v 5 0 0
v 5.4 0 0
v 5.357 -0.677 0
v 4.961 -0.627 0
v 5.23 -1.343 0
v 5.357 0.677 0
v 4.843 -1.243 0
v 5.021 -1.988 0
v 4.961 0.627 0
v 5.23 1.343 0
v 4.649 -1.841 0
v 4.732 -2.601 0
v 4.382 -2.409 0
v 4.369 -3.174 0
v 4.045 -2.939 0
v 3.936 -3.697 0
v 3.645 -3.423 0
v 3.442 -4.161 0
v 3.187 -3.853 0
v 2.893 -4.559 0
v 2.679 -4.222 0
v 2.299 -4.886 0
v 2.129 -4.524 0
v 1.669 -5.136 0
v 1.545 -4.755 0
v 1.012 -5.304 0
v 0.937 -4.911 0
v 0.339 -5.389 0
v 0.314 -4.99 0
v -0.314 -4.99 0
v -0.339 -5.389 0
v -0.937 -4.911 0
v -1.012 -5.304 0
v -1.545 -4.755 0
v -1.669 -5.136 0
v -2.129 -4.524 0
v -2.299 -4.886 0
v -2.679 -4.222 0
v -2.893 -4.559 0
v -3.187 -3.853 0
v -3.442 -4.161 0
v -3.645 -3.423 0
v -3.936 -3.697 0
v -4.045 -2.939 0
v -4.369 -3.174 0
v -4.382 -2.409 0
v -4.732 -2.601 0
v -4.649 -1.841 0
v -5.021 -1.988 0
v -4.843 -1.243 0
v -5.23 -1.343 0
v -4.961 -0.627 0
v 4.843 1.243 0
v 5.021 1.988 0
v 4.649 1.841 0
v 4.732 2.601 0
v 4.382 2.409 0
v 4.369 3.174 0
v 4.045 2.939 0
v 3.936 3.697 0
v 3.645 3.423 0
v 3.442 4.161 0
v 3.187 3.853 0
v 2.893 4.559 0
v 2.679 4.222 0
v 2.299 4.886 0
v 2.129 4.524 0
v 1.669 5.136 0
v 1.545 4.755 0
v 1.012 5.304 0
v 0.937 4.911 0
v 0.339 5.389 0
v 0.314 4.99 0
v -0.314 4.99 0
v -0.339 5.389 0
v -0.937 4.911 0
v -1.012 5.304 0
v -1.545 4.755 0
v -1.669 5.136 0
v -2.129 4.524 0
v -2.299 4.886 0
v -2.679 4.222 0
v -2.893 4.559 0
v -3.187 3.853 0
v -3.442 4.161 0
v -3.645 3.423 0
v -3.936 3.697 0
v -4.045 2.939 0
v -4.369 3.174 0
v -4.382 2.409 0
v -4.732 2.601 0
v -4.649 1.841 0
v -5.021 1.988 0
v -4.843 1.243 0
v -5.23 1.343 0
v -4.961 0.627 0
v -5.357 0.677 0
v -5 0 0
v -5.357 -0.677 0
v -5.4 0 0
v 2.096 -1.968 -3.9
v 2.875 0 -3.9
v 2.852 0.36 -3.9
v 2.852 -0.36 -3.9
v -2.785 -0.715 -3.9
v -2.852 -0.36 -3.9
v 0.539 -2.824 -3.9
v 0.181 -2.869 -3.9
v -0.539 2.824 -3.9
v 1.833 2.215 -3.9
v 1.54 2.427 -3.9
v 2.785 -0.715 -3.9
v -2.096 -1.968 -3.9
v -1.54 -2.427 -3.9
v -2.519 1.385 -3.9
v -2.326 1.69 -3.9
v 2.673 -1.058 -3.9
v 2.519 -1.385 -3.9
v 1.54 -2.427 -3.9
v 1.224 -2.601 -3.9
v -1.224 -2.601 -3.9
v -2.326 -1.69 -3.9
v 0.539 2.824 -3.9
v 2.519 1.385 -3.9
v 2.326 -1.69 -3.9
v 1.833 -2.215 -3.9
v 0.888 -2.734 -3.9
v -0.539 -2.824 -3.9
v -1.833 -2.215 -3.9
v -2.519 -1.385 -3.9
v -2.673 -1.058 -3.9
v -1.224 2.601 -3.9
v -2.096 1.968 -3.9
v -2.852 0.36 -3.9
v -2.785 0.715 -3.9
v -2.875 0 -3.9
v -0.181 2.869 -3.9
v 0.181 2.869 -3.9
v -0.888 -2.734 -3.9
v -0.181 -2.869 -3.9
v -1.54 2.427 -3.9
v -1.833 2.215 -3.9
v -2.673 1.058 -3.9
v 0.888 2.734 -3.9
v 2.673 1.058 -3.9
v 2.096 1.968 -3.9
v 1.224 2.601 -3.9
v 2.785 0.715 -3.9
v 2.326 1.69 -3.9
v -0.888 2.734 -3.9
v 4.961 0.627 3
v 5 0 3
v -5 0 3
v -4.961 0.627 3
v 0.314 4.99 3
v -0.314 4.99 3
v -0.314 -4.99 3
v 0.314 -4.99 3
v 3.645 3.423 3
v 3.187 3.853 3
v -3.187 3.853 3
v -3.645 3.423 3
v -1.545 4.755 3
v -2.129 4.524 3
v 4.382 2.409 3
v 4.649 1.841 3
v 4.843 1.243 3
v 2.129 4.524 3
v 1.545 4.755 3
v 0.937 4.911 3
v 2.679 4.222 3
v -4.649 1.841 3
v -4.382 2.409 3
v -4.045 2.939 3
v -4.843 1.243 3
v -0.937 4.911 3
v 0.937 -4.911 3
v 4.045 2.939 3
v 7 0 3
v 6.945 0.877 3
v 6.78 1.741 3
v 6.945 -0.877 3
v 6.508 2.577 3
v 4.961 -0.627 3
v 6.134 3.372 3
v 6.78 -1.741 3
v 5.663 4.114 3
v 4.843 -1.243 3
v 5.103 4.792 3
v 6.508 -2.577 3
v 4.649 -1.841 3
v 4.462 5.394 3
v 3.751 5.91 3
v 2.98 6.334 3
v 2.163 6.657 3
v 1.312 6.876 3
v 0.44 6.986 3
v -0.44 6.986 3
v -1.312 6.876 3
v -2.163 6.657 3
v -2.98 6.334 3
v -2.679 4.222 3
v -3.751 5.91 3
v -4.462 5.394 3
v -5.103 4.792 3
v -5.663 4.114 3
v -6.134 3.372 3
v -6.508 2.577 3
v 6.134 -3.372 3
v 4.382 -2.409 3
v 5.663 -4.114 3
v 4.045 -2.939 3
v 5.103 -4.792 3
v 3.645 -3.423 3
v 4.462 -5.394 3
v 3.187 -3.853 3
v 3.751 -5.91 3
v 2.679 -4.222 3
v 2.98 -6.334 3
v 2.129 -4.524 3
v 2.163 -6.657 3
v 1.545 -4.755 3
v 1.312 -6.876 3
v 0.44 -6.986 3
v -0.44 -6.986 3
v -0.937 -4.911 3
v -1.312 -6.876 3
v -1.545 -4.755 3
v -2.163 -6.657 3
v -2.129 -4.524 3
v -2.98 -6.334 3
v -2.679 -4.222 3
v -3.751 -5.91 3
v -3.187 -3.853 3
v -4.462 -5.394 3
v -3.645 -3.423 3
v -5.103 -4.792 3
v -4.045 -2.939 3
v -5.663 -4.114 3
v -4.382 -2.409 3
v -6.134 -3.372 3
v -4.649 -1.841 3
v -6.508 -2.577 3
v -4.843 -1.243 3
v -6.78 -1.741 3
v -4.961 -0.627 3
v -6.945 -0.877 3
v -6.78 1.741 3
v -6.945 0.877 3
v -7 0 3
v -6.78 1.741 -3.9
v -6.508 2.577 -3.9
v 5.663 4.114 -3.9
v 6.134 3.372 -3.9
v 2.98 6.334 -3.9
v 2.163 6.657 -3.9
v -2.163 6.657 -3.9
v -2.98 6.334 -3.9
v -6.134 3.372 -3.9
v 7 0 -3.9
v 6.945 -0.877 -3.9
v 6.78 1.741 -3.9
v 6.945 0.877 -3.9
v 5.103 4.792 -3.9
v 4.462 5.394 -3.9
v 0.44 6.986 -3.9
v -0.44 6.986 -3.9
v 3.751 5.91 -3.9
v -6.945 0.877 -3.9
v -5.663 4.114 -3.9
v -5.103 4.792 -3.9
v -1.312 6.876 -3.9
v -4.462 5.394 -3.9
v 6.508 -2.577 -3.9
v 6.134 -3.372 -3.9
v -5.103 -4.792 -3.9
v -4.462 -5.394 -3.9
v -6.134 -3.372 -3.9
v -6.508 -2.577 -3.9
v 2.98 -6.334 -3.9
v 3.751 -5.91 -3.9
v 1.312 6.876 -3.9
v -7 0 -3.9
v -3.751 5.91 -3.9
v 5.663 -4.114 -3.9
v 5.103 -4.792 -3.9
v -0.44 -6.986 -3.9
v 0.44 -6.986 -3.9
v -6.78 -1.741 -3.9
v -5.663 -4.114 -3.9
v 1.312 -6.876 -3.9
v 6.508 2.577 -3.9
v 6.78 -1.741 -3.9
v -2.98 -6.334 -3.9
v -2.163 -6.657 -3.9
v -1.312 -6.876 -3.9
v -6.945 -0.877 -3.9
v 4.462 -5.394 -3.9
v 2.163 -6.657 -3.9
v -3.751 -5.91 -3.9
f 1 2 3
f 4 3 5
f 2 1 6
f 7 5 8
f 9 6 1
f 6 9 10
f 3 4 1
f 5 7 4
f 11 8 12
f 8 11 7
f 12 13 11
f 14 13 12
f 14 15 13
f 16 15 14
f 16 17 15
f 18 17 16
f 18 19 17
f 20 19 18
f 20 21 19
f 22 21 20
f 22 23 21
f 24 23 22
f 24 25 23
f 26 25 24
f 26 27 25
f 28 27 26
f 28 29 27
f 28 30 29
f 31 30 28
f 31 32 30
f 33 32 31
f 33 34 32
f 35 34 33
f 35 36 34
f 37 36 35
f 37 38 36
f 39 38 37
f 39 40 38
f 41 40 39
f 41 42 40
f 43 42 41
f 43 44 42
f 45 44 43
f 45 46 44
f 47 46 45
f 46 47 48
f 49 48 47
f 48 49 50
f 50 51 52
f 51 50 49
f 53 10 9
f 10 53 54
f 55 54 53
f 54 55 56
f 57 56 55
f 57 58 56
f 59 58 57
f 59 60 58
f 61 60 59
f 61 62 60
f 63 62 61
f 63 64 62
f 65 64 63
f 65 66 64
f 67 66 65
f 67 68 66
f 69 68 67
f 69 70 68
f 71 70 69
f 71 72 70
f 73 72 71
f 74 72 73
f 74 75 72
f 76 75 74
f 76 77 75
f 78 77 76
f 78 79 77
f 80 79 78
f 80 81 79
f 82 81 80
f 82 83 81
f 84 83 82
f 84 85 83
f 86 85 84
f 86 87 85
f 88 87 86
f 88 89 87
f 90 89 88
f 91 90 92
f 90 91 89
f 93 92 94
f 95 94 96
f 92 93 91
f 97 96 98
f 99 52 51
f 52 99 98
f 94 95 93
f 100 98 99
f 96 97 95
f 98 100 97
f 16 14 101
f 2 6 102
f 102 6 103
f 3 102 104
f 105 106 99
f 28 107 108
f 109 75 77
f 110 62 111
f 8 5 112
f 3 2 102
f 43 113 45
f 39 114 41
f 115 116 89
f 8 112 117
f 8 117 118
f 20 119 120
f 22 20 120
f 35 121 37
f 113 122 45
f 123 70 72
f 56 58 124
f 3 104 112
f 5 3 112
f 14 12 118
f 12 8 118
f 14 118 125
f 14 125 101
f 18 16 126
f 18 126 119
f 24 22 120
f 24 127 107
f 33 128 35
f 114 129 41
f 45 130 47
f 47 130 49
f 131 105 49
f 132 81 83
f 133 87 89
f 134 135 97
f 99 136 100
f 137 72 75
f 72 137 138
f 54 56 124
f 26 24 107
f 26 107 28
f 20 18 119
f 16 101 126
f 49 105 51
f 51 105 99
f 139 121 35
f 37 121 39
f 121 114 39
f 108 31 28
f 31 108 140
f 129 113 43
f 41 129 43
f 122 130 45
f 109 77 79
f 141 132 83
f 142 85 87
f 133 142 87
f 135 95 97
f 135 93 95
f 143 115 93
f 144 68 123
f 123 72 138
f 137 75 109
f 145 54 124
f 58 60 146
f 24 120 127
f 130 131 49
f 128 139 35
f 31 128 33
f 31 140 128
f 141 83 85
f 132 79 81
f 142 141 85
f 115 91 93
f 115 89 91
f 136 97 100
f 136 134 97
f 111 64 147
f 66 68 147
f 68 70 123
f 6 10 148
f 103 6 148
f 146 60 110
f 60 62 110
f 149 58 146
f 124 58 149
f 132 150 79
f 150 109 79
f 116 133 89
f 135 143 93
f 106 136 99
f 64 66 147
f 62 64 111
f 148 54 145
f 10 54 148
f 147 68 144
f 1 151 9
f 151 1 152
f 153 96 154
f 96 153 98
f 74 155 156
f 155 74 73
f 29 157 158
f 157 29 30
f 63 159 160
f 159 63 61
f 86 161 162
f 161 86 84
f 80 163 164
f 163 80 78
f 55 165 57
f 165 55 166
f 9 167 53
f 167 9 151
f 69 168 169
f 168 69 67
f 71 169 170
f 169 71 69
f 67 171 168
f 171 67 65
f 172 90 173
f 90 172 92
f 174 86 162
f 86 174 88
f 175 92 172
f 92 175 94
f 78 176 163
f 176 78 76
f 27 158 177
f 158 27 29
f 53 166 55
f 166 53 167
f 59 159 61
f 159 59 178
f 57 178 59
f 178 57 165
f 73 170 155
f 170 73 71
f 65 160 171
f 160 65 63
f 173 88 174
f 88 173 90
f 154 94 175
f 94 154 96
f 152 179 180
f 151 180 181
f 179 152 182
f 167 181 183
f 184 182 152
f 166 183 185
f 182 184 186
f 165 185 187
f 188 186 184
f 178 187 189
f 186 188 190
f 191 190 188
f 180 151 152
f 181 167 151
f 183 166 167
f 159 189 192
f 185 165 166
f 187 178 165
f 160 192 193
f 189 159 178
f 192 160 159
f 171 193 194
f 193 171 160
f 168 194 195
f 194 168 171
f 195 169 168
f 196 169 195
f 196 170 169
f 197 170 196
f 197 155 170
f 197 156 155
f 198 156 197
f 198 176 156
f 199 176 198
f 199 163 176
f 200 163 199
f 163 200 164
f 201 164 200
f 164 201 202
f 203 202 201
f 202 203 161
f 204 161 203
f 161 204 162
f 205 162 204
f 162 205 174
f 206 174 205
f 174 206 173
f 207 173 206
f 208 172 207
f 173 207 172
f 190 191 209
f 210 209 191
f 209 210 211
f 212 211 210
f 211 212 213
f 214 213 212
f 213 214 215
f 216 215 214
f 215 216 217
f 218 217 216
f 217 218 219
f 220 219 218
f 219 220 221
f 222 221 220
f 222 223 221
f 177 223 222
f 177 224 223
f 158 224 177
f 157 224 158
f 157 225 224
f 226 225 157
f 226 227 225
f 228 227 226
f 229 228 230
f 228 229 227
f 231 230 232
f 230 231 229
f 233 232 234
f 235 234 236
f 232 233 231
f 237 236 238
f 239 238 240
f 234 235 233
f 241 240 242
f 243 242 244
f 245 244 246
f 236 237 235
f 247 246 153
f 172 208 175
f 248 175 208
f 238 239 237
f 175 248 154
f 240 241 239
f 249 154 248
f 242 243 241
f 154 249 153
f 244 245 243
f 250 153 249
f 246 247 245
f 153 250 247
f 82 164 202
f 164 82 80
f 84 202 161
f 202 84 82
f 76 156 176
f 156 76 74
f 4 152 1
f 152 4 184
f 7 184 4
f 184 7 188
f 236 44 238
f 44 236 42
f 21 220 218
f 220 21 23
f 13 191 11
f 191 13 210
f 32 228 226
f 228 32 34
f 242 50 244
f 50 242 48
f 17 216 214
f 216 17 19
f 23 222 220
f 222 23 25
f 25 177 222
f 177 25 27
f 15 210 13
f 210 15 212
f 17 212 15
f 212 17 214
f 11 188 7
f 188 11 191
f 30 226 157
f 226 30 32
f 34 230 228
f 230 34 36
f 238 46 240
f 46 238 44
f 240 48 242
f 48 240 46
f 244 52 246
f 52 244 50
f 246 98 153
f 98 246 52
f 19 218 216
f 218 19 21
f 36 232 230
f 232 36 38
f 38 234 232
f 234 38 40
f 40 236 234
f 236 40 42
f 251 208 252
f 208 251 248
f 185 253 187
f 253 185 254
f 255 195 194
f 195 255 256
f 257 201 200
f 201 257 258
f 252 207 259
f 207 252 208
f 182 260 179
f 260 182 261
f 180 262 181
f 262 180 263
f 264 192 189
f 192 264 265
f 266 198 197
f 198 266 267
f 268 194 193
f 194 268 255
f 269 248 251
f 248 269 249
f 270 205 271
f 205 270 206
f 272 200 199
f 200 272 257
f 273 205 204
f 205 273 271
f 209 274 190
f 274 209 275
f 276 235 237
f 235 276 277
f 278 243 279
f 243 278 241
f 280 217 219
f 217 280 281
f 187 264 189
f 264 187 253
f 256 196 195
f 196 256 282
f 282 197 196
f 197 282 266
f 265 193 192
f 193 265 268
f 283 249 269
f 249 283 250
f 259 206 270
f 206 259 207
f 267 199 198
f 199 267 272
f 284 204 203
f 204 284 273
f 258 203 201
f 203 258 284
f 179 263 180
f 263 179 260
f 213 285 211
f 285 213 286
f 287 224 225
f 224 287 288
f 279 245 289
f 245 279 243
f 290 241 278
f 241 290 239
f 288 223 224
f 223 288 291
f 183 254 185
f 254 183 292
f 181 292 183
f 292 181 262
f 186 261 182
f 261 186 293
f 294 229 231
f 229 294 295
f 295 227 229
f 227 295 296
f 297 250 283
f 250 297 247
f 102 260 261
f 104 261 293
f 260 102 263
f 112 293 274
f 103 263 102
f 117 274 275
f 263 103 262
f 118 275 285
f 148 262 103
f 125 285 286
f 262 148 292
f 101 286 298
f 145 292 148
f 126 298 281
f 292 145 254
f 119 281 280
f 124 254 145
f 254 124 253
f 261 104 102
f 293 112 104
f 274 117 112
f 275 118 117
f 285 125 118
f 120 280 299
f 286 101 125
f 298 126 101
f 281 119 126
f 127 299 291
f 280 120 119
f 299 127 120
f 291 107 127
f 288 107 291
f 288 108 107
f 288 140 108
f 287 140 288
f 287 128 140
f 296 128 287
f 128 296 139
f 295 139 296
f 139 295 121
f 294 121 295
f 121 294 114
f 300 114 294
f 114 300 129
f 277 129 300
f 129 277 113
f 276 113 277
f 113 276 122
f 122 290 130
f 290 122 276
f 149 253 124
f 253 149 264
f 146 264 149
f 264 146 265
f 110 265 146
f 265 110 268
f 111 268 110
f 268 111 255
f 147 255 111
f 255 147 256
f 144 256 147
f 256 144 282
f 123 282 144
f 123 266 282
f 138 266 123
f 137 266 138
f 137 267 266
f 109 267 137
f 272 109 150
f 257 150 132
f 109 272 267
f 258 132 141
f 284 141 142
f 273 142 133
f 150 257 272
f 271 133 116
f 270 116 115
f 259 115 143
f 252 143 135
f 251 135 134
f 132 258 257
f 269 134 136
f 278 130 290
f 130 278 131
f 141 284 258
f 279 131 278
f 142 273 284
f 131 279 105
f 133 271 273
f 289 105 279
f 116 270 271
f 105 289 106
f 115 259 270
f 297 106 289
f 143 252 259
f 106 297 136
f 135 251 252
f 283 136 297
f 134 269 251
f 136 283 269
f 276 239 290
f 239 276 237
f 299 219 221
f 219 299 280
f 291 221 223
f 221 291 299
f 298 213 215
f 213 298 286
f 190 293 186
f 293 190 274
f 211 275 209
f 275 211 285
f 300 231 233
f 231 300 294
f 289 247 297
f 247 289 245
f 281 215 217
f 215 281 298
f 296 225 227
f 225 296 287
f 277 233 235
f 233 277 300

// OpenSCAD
$fn = 50;


difference() {
	union() {
		translate(v = [0, 0, -3.9000000000]) {
			cylinder(h = 6.9000000000, r = 7.0000000000);
		}
	}
	union() {
		translate(v = [0, 0, 0]) {
			rotate(a = [0, 0, 0]) {
				difference() {
					union() {
						translate(v = [0, 0, -6.9000000000]) {
							cylinder(h = 6.9000000000, r = 2.6000000000);
						}
						translate(v = [0, 0, -3.9000000000]) {
							cylinder(h = 3.9000000000, r1 = 2.8750000000, r2 = 5.4000000000);
						}
						translate(v = [0, 0, -6.9000000000]) {
							cylinder(h = 6.9000000000, r = 2.8750000000);
						}
						translate(v = [0, 0, -6.9000000000]) {
							cylinder(h = 6.9000000000, r = 2.6000000000);
						}
					}
					union();
				}
			}
		}
		#cylinder(h = 3, r = 5.0000000000);
	}
}
